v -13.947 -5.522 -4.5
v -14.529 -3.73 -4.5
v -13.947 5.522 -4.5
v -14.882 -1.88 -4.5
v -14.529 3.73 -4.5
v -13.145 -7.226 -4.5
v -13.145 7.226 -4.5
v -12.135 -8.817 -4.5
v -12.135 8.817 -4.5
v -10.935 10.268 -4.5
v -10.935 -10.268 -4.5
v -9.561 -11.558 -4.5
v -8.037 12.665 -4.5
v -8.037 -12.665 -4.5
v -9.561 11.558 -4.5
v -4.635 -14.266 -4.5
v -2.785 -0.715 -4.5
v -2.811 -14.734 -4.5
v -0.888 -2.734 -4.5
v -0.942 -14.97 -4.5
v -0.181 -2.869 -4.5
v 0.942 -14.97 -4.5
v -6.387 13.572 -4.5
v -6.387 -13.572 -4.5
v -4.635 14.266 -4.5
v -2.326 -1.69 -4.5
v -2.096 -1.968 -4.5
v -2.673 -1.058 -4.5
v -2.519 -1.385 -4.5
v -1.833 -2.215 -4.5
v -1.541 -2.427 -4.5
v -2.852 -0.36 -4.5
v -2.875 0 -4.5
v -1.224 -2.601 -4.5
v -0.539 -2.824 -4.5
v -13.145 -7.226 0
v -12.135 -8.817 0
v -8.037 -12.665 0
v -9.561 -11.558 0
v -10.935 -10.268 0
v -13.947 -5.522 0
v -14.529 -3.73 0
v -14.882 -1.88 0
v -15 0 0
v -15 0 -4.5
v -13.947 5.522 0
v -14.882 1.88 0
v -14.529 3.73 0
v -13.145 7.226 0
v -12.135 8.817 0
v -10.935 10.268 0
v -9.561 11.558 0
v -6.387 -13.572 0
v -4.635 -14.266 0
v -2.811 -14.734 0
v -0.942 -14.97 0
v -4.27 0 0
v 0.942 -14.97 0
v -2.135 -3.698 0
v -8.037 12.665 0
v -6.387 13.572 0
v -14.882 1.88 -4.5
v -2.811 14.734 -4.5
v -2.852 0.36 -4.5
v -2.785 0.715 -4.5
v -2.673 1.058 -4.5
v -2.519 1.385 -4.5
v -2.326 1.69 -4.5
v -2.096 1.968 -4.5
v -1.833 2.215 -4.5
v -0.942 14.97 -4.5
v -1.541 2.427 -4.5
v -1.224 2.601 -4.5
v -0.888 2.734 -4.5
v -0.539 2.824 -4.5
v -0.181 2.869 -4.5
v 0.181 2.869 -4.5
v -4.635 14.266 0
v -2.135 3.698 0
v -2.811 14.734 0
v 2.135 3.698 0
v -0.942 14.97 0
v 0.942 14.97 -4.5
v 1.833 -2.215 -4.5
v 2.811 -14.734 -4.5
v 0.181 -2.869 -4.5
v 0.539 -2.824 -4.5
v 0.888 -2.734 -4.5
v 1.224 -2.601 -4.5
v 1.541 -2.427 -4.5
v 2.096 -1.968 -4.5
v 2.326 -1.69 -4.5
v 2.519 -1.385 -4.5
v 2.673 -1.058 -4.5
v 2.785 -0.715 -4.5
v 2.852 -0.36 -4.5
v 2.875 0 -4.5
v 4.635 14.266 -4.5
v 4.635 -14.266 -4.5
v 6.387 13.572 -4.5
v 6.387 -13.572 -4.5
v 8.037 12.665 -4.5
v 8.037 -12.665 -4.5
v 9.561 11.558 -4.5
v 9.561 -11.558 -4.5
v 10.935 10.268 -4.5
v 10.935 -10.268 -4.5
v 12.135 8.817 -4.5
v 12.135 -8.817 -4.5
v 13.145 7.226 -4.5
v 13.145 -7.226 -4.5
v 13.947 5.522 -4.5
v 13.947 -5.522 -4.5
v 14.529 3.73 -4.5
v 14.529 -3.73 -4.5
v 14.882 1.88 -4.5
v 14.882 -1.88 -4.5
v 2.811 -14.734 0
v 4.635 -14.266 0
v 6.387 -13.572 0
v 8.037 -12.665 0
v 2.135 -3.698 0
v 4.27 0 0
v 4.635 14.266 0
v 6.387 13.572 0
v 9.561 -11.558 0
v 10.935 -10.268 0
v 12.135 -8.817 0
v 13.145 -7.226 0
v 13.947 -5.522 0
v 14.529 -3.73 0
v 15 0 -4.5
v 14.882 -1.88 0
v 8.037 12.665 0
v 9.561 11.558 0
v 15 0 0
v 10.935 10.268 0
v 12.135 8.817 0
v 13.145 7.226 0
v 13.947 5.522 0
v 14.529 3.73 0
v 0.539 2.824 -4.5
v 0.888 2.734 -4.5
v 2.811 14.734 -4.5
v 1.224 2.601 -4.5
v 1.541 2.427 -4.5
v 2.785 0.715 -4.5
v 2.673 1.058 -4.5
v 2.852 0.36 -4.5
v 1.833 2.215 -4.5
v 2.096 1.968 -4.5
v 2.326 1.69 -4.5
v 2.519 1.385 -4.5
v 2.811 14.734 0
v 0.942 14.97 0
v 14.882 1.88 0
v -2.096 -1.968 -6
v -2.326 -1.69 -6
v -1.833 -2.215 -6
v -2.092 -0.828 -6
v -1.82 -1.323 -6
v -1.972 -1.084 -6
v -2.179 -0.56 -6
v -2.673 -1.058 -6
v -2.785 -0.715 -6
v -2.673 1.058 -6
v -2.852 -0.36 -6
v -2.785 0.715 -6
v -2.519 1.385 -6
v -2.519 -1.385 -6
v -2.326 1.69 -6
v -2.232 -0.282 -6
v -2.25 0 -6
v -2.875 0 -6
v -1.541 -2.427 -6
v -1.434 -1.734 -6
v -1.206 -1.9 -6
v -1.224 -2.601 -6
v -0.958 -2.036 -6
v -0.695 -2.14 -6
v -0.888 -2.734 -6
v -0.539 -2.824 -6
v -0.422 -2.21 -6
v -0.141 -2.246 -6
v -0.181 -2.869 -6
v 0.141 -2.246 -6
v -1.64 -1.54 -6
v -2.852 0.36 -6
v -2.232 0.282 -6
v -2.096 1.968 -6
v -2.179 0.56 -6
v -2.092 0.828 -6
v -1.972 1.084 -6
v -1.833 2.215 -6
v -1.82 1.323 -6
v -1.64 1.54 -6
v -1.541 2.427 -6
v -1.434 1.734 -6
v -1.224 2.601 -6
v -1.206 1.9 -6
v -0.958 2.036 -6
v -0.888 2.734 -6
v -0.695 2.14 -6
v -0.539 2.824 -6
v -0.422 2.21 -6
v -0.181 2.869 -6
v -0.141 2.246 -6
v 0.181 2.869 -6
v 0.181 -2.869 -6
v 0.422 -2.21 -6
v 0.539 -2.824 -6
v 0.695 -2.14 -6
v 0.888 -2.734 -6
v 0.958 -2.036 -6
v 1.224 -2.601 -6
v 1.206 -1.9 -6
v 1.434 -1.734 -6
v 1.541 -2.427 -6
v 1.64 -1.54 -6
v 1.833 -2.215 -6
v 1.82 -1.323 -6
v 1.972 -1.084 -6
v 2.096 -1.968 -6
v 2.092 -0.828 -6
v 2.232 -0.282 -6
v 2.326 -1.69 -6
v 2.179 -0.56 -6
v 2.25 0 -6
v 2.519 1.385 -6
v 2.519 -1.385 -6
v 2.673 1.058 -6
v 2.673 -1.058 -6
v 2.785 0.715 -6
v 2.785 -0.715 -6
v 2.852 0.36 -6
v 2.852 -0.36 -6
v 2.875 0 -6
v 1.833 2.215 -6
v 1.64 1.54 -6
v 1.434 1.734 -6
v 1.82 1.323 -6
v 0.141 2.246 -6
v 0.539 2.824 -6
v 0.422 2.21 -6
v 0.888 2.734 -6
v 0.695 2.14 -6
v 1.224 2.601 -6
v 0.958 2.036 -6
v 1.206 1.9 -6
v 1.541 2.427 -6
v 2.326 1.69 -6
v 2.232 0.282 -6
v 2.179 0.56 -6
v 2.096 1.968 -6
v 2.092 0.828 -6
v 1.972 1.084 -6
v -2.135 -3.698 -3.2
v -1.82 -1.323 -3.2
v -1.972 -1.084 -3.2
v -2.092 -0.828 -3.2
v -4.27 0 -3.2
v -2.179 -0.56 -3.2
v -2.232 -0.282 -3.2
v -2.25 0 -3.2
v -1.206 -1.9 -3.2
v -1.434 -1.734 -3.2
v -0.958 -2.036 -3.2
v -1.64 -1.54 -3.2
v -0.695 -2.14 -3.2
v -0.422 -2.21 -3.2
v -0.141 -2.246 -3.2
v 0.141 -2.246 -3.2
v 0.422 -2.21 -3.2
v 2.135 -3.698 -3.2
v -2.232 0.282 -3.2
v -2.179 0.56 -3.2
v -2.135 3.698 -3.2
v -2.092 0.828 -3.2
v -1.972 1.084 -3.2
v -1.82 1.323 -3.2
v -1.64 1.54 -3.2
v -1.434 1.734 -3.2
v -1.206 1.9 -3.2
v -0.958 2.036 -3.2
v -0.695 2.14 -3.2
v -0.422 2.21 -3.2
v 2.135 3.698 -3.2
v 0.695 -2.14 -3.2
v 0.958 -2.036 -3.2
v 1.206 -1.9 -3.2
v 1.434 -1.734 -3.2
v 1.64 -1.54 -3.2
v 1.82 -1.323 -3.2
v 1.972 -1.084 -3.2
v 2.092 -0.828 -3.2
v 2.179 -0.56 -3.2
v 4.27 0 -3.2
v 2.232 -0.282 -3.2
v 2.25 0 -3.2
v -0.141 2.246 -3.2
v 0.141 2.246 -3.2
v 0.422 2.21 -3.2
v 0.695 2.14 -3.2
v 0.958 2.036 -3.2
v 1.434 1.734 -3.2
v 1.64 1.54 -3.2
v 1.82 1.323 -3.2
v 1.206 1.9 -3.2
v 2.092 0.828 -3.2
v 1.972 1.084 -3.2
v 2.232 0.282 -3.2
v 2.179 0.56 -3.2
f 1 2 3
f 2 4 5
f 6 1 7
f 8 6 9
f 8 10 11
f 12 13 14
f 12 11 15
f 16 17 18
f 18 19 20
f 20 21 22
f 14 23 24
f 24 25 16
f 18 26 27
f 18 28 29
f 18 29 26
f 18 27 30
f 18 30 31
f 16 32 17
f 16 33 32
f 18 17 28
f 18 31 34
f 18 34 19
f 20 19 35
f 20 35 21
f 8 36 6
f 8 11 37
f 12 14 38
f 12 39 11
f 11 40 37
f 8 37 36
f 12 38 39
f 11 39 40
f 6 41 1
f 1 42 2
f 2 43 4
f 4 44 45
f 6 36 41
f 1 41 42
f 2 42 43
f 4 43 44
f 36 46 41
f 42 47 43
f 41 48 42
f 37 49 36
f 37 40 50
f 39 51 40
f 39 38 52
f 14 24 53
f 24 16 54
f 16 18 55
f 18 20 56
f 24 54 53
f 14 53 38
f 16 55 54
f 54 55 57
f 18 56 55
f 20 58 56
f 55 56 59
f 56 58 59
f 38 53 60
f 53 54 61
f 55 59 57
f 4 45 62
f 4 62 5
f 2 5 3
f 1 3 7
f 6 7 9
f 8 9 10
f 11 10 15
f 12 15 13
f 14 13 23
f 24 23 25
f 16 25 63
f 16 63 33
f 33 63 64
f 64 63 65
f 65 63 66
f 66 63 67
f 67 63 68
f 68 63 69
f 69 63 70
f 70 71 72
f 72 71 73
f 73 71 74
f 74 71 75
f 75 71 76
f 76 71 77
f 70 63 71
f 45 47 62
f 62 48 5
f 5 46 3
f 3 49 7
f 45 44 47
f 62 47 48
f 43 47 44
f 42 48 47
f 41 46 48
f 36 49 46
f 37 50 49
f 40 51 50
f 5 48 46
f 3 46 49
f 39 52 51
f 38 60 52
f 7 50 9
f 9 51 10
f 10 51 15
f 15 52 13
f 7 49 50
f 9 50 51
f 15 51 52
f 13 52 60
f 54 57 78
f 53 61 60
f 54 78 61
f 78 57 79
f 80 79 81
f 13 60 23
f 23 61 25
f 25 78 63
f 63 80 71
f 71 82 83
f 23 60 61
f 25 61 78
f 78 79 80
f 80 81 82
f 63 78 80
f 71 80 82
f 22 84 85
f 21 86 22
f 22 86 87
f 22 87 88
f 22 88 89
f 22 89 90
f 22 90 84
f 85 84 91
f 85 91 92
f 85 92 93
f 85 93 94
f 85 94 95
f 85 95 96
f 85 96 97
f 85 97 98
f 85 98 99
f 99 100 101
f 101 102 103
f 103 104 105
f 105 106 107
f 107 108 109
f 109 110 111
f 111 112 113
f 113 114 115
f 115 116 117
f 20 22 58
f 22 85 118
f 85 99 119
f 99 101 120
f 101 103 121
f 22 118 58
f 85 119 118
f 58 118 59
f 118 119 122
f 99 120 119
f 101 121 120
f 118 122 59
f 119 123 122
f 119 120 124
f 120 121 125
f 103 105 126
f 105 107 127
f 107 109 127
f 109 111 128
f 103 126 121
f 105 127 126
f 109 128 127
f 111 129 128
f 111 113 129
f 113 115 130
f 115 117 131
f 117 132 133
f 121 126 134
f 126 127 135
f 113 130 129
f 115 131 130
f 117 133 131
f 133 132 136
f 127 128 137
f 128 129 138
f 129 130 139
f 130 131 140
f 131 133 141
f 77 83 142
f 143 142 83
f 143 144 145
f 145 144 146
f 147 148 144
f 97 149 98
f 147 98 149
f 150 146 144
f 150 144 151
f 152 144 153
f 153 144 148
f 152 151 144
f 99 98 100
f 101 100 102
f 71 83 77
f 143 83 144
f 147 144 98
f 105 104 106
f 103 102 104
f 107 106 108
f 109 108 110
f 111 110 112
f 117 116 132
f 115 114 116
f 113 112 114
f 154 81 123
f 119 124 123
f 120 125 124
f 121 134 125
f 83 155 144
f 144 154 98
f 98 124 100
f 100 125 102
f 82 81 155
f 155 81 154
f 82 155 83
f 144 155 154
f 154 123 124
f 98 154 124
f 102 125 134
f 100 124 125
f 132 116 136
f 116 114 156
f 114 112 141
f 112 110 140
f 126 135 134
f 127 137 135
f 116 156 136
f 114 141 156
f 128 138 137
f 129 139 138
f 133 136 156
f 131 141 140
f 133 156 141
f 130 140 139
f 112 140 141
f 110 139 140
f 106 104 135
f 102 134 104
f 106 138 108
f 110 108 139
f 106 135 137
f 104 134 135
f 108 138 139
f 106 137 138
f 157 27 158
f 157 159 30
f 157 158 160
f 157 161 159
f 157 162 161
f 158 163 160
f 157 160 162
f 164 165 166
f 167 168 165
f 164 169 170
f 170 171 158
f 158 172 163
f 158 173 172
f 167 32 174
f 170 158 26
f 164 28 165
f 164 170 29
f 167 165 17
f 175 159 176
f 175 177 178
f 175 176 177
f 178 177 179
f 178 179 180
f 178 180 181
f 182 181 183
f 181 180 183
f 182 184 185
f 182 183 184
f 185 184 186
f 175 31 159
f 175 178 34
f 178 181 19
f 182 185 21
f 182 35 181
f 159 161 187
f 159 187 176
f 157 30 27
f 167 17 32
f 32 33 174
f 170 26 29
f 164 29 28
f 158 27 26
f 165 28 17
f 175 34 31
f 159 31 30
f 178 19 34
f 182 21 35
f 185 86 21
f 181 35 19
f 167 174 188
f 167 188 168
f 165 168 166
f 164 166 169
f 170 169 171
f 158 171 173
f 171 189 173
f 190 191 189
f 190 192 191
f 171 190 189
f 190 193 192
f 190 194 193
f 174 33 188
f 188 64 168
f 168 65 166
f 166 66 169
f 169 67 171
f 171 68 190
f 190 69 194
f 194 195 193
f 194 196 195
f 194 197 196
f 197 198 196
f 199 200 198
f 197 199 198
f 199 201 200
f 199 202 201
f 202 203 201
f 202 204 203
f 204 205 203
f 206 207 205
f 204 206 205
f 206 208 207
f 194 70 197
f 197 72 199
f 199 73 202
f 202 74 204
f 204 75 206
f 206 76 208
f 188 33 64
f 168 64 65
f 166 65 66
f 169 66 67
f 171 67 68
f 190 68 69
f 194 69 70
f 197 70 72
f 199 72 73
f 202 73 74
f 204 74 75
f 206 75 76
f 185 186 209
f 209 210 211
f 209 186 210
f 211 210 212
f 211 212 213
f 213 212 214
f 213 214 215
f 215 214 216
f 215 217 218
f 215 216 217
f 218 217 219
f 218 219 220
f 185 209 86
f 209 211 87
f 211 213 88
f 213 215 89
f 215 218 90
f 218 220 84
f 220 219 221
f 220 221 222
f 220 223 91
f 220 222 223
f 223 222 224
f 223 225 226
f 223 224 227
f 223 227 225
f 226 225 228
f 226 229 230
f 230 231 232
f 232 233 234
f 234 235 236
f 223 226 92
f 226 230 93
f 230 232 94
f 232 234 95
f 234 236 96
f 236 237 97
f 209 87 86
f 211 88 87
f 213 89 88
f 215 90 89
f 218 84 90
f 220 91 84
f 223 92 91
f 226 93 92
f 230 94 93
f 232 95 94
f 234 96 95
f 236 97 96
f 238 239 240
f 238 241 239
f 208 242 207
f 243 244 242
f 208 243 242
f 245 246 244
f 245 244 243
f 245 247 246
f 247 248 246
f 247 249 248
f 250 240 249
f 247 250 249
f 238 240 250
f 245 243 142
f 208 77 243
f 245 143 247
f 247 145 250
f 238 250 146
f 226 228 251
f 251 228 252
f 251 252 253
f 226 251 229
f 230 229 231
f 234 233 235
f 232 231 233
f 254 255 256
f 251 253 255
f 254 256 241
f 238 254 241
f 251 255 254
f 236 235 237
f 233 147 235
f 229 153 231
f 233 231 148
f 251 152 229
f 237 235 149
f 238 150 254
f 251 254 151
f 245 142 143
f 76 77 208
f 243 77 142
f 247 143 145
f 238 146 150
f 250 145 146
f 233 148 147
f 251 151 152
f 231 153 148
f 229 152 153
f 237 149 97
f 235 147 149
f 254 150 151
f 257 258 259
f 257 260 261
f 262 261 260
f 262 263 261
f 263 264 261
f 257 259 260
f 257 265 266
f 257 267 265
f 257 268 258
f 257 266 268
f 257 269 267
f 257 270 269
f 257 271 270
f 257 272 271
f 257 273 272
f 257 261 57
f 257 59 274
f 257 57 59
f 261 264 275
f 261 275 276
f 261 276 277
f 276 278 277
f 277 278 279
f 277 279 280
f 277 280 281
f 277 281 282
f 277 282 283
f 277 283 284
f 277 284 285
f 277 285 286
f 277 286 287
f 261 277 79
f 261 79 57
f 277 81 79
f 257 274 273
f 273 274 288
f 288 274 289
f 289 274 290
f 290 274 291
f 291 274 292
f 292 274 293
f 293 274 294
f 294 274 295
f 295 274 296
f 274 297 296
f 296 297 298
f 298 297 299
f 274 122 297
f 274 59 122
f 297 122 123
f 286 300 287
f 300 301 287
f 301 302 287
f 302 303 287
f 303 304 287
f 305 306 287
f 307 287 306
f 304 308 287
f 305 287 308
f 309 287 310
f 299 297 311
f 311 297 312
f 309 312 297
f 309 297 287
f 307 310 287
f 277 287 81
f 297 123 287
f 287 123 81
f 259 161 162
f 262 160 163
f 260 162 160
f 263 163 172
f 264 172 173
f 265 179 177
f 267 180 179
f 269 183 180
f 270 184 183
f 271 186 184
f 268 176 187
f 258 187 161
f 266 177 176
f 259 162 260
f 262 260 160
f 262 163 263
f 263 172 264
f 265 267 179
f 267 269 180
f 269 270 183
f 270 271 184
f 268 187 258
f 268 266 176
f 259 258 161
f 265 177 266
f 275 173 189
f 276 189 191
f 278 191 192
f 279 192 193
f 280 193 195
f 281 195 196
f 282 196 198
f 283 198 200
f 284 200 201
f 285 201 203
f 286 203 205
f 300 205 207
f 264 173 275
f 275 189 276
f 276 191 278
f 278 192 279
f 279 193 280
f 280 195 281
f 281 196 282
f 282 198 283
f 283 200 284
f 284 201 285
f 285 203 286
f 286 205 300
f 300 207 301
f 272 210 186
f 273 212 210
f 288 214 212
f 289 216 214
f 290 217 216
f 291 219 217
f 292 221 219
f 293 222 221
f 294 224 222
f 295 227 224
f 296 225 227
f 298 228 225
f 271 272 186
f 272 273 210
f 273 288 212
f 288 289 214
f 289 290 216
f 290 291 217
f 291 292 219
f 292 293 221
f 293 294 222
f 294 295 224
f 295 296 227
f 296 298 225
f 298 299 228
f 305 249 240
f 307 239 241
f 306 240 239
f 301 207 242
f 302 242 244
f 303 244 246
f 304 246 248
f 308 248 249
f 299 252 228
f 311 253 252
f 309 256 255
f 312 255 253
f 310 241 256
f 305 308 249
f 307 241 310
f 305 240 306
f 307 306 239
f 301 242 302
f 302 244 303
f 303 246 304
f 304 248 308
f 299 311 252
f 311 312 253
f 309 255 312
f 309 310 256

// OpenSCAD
$fn = 50;


difference() {
	union() {
		translate(v = [0, 0, -4.5000000000]) {
			cylinder(h = 4.5000000000, r = 15.0000000000);
		}
		#translate(v = [0, 0, -6.0000000000]) {
			cylinder(h = 6, r = 2.8750000000);
		}
	}
	union() {
		translate(v = [0, 0, 0]) {
			rotate(a = [0, 0, 0]) {
				difference() {
					union() {
						translate(v = [0, 0, -3.2000000000]) {
							linear_extrude(height = 3.2000000000) {
								polygon(points = [[4.2698000000, 0.0000000000], [2.1349000000, 3.6977552691], [-2.1349000000, 3.6977552691], [-4.2698000000, 0.0000000000], [-2.1349000000, -3.6977552691], [2.1349000000, -3.6977552691]]);
							}
						}
					}
					union();
				}
			}
		}
		#translate(v = [0, 0, -100.0000000000]) {
			cylinder(h = 200, r = 2.2500000000);
		}
	}
}
